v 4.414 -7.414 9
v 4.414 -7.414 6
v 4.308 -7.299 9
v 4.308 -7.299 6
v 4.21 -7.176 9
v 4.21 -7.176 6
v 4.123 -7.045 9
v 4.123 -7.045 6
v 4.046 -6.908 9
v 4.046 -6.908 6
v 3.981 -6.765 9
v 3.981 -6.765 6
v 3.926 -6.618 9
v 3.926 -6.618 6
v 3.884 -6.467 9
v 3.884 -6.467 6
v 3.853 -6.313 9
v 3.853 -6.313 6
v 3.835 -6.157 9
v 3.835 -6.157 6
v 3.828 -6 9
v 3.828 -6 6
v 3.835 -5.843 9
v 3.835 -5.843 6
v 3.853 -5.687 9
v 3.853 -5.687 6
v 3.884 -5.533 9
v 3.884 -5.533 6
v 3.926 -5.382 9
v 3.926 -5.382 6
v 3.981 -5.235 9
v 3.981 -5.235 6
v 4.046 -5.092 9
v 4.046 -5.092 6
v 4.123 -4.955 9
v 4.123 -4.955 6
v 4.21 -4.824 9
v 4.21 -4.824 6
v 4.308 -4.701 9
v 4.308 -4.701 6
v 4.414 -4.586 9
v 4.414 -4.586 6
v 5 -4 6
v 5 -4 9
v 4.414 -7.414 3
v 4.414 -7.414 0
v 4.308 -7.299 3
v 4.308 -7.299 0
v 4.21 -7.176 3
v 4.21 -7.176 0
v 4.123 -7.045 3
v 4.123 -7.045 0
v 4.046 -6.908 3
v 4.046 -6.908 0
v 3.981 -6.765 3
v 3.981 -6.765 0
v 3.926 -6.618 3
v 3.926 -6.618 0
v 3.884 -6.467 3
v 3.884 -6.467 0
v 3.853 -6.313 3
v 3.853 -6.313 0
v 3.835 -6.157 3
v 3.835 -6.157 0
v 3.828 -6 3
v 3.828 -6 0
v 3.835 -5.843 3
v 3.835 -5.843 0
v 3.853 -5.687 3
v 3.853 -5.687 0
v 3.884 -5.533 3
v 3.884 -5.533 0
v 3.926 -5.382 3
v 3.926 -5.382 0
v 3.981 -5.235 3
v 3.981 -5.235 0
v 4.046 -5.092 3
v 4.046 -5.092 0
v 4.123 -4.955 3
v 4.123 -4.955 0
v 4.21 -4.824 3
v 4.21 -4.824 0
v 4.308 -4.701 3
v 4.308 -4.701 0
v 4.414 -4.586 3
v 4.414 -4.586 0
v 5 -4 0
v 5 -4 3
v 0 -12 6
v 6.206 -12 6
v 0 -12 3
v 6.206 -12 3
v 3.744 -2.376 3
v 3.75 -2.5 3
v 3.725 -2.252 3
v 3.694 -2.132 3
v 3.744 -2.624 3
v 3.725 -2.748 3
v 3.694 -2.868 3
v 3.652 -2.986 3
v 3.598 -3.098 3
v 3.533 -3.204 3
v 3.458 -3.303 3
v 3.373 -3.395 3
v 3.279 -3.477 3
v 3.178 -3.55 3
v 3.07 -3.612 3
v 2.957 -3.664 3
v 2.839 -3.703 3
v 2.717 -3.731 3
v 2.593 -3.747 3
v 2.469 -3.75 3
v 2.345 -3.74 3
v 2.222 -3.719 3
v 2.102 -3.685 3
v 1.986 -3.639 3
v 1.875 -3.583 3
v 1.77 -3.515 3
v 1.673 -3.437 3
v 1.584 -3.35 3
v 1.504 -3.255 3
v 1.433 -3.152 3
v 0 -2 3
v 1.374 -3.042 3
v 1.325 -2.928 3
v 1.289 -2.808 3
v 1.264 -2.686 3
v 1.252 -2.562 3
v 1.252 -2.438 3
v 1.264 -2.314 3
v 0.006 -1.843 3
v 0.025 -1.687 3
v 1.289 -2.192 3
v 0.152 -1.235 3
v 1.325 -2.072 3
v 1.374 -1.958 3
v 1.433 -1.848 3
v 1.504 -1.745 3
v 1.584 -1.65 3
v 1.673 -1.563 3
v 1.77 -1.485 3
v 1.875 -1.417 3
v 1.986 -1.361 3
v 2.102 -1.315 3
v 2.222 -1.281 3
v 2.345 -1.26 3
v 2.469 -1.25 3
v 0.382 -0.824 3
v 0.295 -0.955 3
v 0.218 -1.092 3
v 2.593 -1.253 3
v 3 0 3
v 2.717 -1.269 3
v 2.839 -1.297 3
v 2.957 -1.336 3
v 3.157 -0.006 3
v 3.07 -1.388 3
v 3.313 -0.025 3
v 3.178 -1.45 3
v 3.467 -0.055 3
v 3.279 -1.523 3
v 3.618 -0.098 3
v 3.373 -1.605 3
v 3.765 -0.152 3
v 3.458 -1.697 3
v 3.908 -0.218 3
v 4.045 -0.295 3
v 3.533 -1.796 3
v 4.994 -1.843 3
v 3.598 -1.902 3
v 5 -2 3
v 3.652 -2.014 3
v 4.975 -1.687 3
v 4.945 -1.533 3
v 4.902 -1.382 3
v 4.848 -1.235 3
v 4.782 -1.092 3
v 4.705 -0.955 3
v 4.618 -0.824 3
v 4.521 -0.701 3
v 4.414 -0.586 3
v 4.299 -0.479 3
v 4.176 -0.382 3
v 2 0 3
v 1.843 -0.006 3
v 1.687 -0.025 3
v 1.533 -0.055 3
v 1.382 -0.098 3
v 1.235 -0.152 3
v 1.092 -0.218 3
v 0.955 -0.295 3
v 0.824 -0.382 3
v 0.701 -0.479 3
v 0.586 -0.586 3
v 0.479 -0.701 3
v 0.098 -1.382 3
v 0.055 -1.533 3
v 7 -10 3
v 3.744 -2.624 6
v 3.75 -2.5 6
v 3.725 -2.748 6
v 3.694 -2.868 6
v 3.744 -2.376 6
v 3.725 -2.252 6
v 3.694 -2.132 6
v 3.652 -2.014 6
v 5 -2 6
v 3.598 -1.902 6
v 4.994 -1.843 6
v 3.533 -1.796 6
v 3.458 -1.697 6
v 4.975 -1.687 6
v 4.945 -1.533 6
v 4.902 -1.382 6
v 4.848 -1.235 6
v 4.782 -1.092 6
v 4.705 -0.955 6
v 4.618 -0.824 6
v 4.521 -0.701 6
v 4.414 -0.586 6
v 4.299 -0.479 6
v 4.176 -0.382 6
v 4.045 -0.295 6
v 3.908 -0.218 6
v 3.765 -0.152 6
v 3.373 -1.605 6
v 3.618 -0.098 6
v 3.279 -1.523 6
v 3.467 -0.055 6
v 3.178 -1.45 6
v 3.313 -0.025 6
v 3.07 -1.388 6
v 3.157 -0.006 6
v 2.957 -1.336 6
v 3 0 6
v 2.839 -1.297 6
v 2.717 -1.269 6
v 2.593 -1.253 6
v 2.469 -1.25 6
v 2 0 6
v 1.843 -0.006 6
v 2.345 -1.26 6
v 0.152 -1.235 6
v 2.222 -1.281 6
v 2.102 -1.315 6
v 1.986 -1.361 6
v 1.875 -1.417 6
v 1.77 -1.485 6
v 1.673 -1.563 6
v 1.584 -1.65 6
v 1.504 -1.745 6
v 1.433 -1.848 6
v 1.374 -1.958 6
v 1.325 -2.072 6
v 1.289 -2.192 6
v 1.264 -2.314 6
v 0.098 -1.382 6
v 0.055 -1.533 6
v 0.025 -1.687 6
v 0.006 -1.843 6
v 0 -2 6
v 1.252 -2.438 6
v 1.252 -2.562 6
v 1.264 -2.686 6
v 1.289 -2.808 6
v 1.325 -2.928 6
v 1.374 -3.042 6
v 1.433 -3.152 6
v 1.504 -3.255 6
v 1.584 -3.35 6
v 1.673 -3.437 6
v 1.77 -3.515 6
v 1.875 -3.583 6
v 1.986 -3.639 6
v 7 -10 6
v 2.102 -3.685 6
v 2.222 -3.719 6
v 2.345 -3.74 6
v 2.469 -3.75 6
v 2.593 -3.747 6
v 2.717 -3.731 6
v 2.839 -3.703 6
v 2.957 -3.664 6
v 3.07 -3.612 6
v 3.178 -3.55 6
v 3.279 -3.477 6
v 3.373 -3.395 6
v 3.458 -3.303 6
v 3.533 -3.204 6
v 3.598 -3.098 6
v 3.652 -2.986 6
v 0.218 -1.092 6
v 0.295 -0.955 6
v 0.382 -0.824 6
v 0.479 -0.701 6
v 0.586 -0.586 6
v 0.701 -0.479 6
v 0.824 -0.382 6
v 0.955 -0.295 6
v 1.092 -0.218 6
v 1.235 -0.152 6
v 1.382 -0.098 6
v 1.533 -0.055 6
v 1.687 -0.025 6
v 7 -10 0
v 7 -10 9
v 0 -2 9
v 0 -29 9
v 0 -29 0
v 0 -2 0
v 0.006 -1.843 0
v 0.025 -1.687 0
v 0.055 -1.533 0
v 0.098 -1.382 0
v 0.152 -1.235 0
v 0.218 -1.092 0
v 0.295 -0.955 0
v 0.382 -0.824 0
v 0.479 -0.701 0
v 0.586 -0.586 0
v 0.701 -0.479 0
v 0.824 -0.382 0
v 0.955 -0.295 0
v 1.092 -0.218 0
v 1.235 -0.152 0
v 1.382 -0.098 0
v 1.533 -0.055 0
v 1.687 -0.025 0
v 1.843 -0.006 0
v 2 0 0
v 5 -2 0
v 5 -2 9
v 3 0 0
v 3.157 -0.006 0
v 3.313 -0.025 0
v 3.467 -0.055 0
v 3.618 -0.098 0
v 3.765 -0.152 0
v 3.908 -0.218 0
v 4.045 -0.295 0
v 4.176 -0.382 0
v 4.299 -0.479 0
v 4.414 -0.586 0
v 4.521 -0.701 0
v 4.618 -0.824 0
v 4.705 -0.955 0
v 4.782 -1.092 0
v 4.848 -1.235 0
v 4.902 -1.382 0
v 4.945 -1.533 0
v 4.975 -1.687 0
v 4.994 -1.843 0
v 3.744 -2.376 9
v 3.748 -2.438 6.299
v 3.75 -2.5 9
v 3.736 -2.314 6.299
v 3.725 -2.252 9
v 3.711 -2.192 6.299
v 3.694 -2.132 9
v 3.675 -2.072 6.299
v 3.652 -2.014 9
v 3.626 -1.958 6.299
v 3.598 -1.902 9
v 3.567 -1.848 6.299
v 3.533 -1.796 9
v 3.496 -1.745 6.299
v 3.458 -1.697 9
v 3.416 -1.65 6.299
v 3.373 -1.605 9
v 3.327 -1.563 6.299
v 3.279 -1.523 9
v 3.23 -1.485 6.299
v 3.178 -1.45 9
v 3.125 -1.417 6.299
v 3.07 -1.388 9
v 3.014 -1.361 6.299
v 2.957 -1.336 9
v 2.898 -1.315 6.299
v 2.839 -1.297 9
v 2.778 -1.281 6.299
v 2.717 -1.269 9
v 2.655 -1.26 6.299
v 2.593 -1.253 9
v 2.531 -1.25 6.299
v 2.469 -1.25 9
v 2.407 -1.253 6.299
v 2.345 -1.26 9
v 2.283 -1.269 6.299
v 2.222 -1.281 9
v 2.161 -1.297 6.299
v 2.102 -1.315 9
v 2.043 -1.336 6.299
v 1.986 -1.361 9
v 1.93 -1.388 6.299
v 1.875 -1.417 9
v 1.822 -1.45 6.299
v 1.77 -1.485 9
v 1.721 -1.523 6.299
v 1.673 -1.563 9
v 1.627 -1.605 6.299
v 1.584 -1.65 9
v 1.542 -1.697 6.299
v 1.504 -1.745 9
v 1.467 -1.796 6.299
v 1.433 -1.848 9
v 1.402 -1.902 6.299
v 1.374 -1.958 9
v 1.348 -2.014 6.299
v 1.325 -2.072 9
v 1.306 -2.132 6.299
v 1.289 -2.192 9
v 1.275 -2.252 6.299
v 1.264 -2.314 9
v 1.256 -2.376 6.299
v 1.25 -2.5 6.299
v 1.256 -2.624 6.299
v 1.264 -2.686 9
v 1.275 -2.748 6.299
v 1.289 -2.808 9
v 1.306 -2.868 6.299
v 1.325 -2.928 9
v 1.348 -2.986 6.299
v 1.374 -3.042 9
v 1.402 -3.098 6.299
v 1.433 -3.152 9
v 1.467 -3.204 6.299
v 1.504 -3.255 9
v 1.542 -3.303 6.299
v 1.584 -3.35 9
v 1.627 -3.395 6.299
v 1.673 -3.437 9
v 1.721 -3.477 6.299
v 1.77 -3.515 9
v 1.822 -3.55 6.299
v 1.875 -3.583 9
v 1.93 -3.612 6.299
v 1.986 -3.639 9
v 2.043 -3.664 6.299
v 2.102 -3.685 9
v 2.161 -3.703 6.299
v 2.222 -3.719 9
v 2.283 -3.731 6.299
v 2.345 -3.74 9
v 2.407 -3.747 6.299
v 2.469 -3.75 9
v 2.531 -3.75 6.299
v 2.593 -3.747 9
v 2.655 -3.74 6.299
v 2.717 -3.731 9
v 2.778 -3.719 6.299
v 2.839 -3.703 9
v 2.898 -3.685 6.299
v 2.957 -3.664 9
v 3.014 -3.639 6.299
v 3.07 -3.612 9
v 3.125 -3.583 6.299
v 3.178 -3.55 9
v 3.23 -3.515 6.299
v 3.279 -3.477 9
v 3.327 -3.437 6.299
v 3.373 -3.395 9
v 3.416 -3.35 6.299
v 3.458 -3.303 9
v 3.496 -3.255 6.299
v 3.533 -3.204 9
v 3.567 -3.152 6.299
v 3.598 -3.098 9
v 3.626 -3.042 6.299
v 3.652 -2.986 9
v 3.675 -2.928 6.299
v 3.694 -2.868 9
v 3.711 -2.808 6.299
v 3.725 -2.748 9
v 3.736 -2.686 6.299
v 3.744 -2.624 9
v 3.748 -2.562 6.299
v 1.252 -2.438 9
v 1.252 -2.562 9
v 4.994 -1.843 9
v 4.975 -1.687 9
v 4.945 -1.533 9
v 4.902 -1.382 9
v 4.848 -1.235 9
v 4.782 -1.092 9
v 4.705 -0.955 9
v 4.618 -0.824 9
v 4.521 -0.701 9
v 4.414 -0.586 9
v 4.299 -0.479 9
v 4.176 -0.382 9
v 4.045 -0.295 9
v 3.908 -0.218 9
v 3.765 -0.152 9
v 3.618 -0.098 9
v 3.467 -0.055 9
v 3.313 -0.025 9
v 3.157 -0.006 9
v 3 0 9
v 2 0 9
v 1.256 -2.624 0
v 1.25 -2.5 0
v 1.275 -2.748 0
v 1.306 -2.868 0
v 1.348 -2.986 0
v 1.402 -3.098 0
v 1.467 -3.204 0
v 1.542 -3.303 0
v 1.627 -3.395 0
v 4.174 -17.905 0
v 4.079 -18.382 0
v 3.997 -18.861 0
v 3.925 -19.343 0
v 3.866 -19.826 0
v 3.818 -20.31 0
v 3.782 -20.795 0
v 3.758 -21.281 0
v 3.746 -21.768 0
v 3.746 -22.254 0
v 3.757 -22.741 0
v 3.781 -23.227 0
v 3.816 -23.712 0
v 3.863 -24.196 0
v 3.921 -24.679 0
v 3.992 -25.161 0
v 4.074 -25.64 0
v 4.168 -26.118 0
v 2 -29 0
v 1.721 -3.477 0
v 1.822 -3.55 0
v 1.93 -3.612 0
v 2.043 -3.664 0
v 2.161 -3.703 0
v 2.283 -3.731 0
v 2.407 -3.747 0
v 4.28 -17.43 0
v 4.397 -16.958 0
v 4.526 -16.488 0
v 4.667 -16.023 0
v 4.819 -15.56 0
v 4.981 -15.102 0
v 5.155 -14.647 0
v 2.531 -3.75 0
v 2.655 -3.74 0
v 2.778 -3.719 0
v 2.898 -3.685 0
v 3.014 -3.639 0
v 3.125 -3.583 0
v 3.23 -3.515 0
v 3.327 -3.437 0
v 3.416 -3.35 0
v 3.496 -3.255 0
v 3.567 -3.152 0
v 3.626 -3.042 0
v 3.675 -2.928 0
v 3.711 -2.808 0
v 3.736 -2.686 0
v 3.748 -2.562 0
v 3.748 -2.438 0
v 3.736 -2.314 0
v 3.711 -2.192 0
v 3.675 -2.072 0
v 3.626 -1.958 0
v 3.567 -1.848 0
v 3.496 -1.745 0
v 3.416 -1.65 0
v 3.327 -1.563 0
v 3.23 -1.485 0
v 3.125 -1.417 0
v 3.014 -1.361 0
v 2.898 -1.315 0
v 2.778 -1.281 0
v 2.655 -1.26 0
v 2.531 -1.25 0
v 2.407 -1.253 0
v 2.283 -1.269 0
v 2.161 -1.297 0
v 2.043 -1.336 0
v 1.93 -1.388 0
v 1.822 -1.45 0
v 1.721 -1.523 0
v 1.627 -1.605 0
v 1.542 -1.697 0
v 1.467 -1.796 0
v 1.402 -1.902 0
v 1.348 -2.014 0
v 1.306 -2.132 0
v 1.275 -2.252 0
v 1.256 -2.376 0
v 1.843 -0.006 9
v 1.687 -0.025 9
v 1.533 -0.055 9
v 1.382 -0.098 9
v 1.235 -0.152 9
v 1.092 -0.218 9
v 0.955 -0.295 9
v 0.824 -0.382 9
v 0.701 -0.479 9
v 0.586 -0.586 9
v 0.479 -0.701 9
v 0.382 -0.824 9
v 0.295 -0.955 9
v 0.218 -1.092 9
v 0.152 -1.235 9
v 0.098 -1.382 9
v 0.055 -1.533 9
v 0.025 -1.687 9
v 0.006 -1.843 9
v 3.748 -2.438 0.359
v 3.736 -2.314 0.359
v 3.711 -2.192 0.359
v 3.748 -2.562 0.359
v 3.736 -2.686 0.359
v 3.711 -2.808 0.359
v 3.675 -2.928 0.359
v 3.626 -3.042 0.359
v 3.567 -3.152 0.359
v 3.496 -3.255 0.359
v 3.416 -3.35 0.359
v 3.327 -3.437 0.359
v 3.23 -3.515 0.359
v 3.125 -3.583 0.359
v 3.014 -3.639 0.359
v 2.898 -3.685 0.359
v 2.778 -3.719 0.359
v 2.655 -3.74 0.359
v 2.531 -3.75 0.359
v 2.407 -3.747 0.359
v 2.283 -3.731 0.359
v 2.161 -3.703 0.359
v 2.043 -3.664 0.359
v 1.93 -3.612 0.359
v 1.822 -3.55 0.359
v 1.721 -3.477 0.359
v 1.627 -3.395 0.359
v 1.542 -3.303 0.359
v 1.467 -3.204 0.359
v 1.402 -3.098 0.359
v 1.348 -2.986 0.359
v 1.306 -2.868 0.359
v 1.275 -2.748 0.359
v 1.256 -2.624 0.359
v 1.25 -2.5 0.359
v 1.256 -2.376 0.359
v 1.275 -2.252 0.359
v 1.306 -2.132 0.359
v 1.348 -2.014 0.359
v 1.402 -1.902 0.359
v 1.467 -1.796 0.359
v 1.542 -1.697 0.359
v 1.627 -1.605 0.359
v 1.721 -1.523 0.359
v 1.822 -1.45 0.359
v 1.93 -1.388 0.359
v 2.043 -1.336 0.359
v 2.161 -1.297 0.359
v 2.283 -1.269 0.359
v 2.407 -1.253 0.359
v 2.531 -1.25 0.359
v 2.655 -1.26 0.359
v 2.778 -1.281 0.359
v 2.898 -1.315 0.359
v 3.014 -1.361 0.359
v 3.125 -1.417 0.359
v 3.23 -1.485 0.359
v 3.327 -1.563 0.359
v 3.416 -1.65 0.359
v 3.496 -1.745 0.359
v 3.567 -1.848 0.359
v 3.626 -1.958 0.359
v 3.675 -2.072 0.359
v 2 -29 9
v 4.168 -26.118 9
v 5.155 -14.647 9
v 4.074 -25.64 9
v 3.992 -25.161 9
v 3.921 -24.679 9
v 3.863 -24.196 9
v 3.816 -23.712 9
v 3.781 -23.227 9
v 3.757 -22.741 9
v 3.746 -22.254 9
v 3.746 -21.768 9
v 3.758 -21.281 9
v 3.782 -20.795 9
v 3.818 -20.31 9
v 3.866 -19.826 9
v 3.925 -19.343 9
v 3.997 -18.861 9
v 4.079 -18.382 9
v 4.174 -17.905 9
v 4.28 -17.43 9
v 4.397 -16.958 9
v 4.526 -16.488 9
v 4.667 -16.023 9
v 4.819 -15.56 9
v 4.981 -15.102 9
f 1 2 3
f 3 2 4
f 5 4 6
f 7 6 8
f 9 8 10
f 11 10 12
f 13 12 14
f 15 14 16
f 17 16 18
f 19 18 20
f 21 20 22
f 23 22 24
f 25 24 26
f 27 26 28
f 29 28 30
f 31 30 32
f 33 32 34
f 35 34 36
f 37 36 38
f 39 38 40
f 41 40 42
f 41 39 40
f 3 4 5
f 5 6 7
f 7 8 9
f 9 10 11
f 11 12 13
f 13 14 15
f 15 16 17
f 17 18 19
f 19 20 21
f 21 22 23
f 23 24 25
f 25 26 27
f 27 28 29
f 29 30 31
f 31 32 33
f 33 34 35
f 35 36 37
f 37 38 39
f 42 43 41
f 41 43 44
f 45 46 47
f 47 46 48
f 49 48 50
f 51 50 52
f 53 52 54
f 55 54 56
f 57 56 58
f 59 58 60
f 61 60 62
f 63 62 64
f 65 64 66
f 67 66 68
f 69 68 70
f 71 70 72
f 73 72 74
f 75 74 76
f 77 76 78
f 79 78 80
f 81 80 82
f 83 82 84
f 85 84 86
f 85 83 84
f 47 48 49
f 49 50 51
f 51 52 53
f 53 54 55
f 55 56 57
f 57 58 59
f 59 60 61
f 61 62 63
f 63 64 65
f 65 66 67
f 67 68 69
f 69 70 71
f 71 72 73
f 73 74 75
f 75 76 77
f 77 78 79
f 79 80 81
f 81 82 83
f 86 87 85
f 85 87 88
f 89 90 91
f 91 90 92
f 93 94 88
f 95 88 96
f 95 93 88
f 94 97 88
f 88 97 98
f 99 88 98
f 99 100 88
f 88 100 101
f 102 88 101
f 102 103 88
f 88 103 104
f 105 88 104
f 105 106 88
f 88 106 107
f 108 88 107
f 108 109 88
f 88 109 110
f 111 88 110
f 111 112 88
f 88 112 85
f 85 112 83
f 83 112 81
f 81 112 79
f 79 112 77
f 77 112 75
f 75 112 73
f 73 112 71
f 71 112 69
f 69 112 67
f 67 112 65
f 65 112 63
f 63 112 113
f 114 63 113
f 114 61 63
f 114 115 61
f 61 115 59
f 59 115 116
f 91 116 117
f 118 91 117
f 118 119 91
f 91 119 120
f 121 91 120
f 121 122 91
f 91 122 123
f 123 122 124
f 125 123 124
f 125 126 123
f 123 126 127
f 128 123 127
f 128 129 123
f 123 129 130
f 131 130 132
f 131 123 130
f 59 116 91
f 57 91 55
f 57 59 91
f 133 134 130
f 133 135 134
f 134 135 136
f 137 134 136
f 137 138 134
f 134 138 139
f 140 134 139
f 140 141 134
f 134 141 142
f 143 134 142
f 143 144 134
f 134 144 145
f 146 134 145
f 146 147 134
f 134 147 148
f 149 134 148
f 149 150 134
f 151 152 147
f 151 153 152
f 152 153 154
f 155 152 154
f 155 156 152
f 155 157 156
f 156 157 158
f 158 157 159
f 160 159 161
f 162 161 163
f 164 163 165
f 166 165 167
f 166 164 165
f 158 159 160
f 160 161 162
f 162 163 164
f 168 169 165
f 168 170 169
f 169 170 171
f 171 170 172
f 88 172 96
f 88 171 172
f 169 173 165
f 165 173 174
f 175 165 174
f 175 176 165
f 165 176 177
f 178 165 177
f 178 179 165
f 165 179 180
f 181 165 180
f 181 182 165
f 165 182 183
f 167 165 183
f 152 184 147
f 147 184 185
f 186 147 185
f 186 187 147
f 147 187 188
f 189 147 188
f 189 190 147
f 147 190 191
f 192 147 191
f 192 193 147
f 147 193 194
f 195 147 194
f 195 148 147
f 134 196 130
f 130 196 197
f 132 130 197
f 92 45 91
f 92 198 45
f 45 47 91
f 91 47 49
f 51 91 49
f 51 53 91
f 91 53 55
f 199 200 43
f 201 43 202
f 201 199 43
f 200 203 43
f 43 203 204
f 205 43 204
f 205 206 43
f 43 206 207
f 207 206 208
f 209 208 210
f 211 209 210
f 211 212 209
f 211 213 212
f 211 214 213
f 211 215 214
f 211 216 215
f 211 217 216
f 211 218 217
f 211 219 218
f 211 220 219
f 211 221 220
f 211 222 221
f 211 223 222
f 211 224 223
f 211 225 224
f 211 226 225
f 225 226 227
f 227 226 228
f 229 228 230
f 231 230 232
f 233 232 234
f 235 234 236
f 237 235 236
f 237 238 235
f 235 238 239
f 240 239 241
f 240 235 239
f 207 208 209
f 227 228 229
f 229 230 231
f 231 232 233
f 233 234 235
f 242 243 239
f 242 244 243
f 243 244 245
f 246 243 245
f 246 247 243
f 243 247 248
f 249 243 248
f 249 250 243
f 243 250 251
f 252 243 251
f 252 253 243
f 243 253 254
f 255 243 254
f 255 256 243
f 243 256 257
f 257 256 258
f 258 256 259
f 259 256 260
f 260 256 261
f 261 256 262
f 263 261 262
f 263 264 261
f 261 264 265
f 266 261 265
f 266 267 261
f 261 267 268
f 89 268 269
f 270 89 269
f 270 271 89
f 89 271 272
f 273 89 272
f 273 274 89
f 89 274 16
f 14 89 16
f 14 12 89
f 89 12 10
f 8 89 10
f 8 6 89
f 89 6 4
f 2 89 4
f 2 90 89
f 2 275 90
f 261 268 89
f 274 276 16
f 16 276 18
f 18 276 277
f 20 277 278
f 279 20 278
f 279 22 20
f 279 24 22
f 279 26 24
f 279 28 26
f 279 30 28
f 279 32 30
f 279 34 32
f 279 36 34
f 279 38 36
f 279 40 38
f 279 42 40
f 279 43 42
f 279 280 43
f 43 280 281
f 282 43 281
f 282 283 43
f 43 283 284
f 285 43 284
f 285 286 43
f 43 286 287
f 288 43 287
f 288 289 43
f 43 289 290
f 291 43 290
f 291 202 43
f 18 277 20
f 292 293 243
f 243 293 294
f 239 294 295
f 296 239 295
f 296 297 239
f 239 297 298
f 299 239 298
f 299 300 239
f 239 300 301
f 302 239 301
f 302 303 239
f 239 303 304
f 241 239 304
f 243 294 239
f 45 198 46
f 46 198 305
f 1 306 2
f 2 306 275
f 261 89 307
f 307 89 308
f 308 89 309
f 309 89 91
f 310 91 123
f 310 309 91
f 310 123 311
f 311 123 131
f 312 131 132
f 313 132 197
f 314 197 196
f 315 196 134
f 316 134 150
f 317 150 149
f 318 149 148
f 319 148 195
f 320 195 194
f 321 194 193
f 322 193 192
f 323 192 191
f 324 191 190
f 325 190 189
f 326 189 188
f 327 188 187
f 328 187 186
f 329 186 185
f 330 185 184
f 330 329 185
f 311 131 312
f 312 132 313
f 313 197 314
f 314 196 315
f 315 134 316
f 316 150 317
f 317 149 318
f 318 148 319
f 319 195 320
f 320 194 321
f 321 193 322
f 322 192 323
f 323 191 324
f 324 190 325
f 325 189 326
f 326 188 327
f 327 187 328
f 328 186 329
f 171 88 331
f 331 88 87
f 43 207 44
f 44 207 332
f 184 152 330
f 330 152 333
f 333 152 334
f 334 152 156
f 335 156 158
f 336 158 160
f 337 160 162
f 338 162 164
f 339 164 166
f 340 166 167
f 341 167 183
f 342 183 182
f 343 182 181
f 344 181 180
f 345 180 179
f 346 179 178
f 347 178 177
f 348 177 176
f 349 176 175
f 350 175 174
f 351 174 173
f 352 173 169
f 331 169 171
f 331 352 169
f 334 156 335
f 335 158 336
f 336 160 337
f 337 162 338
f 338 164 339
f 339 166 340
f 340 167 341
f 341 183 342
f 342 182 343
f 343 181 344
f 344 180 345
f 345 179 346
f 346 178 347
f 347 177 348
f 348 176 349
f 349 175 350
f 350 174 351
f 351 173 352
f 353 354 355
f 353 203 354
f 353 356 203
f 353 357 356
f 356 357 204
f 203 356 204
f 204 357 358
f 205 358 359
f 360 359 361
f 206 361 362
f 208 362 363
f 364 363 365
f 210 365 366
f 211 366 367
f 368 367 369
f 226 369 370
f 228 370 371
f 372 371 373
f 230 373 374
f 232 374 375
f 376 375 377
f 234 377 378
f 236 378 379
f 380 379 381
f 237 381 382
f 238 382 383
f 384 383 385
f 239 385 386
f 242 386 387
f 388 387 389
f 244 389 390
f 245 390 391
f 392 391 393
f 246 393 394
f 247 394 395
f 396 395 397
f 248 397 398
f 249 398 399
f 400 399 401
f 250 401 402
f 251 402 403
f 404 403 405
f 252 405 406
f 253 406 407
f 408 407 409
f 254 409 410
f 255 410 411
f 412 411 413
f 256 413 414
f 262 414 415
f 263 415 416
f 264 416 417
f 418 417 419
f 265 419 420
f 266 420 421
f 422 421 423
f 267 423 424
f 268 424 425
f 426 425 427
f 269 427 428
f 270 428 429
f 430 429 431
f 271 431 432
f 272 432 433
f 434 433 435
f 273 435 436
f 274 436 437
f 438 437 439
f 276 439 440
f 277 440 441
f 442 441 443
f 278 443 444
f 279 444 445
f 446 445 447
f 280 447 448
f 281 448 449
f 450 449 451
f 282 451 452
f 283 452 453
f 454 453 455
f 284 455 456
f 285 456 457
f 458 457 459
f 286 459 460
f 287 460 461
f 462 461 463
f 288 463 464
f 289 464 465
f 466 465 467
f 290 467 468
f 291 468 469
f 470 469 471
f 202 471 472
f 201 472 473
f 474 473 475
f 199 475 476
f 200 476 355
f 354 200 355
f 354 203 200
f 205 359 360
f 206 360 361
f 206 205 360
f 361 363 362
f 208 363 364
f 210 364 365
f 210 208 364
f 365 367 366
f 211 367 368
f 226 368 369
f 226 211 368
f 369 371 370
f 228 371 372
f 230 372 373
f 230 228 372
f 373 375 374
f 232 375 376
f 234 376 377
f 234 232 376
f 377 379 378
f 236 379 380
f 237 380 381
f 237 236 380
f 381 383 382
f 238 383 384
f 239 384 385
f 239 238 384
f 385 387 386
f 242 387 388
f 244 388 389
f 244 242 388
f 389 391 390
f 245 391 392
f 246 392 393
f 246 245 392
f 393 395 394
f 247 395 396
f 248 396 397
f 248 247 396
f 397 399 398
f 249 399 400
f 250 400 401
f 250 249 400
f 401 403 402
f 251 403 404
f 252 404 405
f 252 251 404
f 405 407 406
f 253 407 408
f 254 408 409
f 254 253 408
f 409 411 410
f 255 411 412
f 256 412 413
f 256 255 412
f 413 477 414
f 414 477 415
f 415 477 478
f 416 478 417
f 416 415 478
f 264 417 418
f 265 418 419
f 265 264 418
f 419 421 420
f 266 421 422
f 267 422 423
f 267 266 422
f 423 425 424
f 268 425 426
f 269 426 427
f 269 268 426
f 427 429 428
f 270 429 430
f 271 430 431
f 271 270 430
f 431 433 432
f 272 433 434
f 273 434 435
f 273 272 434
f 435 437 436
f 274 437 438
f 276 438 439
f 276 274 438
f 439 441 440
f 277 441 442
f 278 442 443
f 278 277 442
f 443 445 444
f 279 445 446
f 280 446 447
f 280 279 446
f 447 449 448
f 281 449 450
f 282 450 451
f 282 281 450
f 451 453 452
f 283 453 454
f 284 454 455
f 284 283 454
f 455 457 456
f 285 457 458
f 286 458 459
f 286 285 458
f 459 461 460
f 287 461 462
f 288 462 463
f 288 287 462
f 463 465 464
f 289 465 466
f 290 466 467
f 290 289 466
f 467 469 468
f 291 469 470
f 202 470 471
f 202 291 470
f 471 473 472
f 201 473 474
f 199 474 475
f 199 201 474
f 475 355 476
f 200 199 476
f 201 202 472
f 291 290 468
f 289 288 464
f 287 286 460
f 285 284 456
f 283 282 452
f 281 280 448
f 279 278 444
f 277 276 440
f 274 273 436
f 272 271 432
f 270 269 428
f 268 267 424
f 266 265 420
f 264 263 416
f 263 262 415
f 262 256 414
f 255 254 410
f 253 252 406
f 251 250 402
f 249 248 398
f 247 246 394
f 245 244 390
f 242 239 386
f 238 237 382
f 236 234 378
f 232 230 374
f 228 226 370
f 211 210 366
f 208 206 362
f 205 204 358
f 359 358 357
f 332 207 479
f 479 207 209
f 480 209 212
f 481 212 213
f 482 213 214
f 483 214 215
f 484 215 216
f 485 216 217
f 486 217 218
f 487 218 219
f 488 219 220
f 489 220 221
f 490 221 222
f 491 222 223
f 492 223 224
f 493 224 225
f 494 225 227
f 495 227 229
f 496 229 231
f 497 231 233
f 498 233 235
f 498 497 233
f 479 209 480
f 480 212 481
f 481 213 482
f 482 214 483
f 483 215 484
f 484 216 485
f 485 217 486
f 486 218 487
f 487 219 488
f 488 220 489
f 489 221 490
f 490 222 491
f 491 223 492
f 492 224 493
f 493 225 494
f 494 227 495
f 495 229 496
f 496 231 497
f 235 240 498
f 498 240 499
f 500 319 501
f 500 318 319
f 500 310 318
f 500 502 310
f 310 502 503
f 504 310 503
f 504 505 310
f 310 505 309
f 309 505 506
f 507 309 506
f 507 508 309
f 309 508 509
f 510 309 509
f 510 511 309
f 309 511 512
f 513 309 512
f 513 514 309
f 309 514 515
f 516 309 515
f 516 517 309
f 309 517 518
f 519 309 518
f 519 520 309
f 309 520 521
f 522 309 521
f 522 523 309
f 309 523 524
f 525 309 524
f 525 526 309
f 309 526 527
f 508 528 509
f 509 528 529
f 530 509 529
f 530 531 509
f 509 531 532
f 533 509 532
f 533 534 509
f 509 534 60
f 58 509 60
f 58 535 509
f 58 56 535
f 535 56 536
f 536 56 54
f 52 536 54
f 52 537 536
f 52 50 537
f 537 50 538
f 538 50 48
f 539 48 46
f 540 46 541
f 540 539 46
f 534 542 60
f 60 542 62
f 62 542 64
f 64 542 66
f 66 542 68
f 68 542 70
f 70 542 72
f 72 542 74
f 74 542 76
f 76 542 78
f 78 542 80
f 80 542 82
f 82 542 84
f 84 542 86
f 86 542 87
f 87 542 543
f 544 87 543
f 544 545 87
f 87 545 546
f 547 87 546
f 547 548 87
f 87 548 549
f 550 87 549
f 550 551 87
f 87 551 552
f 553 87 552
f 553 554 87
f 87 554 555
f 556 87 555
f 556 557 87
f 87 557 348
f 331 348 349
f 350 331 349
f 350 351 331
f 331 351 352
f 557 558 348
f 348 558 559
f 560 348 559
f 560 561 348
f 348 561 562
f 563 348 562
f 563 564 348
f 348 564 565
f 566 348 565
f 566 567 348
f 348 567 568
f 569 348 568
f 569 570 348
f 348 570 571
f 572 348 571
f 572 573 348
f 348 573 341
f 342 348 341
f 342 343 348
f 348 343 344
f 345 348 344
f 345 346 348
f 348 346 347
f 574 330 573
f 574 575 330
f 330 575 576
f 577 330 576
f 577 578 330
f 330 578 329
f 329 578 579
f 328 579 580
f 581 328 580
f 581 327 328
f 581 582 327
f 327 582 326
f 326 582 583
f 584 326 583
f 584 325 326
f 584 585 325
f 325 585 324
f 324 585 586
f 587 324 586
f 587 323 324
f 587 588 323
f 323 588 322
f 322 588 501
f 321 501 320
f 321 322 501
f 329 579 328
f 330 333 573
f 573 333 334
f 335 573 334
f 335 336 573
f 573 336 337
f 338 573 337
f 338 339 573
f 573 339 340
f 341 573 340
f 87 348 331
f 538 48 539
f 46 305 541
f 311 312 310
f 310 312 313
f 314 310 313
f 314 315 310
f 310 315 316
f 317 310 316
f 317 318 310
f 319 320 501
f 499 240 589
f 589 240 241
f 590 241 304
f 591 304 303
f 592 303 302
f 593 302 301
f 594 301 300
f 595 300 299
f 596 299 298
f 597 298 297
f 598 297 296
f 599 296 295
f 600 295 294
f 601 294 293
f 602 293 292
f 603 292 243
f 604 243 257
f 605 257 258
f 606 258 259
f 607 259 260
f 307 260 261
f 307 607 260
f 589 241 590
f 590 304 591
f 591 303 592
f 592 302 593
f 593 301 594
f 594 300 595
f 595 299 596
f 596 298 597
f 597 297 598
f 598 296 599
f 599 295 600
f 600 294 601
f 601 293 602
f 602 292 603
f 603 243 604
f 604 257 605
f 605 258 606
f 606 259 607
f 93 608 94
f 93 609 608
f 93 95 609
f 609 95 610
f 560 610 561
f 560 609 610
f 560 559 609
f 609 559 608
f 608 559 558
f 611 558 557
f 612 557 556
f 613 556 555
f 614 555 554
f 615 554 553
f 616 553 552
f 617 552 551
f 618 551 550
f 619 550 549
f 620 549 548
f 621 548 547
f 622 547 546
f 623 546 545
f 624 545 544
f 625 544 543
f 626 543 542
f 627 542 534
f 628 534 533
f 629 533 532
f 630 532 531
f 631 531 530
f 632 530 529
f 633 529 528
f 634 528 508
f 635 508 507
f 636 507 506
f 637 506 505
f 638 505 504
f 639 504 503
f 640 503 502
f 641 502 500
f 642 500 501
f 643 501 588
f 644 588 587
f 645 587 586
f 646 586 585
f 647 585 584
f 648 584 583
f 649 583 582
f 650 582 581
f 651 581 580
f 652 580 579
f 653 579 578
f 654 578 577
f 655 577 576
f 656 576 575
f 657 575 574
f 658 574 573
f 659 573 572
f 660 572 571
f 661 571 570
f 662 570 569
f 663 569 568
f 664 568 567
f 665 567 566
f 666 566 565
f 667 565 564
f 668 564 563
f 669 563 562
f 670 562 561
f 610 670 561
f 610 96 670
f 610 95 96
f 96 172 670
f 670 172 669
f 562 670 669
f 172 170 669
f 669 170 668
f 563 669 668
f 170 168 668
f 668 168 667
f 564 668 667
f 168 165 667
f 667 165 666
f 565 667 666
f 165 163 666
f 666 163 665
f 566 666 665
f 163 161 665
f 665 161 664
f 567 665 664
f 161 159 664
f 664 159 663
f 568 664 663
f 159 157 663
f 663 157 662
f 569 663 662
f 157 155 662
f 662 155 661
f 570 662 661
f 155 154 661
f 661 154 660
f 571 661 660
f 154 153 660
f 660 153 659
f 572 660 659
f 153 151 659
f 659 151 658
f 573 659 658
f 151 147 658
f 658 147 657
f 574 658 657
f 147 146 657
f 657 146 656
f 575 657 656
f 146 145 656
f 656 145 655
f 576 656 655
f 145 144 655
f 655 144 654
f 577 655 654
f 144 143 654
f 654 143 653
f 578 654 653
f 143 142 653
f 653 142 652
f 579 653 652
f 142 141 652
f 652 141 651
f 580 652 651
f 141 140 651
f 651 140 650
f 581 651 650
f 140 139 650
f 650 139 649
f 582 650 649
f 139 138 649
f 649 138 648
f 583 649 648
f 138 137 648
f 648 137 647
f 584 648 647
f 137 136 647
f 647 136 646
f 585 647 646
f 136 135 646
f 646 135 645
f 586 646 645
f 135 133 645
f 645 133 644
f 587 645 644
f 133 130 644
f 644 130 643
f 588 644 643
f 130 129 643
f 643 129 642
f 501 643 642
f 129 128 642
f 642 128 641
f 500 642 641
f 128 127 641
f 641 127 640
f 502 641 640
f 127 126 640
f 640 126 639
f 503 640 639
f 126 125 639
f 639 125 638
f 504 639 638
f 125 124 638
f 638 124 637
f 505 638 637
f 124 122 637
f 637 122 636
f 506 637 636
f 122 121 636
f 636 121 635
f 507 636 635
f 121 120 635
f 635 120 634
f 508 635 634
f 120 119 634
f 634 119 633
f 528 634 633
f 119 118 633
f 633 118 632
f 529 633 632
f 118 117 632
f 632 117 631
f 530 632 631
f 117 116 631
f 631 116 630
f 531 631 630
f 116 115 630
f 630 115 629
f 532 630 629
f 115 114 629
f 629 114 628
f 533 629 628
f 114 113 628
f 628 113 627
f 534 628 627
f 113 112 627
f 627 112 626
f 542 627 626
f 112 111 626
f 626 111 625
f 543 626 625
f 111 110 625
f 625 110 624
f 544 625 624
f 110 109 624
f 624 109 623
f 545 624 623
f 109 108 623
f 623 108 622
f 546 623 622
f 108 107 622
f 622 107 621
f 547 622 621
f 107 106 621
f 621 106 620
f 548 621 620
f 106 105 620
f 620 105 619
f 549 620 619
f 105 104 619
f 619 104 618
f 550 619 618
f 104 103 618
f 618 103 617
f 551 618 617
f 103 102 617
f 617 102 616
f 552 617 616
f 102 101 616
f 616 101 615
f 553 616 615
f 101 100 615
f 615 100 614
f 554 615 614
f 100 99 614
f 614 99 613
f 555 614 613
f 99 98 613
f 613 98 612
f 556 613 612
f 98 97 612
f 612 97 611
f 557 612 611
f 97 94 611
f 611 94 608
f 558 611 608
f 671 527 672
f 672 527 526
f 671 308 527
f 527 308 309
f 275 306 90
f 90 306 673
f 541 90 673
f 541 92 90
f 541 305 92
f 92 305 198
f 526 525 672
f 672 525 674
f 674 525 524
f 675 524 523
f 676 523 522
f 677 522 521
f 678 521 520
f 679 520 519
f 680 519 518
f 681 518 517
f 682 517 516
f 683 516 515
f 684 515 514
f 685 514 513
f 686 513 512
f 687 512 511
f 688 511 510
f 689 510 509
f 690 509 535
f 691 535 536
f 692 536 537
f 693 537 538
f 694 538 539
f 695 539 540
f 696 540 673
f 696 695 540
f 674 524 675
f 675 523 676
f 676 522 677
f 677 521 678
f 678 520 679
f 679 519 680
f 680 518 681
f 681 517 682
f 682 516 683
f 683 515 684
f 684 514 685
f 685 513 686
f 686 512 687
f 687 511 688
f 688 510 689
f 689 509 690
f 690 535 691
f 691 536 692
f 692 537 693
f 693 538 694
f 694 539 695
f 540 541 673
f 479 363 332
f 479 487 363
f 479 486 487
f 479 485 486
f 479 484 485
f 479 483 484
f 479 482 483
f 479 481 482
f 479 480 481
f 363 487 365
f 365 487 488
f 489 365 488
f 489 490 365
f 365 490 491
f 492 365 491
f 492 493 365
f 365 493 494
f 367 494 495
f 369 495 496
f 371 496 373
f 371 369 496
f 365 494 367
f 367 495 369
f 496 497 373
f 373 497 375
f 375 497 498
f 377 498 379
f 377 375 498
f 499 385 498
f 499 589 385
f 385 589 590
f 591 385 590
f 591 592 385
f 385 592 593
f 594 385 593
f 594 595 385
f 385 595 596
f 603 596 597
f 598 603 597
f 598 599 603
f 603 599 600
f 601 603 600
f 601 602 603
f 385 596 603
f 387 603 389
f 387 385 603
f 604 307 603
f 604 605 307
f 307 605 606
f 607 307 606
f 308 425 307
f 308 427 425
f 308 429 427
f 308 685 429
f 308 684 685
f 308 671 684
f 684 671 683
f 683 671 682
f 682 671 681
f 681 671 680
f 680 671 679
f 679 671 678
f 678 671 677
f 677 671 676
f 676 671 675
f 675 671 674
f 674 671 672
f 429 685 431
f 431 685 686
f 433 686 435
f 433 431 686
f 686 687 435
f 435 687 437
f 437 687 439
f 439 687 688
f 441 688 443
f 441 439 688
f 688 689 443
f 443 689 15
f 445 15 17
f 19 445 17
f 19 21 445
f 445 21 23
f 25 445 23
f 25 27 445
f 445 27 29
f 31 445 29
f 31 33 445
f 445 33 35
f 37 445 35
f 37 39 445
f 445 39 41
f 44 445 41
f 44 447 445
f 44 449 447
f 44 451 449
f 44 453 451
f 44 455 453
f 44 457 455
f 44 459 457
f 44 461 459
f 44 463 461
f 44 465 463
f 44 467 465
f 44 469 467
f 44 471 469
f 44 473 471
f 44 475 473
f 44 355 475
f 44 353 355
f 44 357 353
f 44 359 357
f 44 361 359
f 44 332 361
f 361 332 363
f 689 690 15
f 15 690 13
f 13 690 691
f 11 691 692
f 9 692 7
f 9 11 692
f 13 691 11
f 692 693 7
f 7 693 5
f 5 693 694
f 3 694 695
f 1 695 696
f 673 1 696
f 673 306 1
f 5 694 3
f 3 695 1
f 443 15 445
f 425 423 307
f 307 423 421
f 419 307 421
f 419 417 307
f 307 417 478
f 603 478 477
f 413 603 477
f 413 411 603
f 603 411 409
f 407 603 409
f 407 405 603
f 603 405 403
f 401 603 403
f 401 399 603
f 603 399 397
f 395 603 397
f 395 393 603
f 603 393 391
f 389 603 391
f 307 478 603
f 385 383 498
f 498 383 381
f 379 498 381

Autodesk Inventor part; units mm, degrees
ref_plane "YZ Plane" through (0, 0, 0) normal (1, 0, 0) x (0, 1, 0)
ref_plane "XZ Plane" through (0, 0, 0) normal (0, 1, 0) x (-1, 0, 0)
sketch "Base" plane through (0, 0, 0) normal (0, 0, 1) x (1, 0, 0)
  line L0 (0, 0) -> (0, -29)
  line L1 (0, 0) -> (5, 0)
  line L2 (5, 0) -> (5, -4)
  line L3 (3, -6) -> (7, -10)
  line L4 (7, -10) -> (5.1554, -14.6473)
  line L5 (0, -29) -> (5, -29)
  line L6 (5, -4) -> (3, -6)
  arc A0 (5.1554, -14.6473) -> (5, -29) centre (23.7446, -22.0257) ccw
  dimension "d0" = 29
  dimension "d1" = 5
  dimension "d54" = 4
  dimension "d112" = 5
  dimension "d116" = 20
  dimension "d117" = 45
  dimension "d118" = 7
  dimension "d119" = 5
  dimension "d123" = 4
extrude "BaseFeature" add sketch "Base" along normal blind 9
chamfer "EndChamferFeature" distance 3 angle 45 1 edges at (5, -29, 4.5)
sketch "MountHole" plane through (0, 0, 9) normal (0, 0, 1) x (1, 0, 0)
  circle A0 centre (2.5, -2.5) radius 1.25
  line L0 (5, 0) -> (0, 0) construction
  line L1 (0, 0) -> (0, -29) construction
  dimension "d40" = 2.5
  dimension "d41" = 2.5
  dimension "d42" = 2.5
hole "MountHoleFeature" at (2.5, -2.5, 9) direction (0, 0, -1) diameter 2.5 end through all
fillet "EndFilletsFeature" radius 2 2 edges at (0, 0, 4.5) (5, 0, 4.5)
ref_plane "MidPlane" through (0, 0, 4.5) normal (0, 0, 1) x (1, 0, 0)
sketch "MountCut" plane through (0, 0, 4.5) normal (0, 0, 1) x (1, 0, 0)
  line L0 (5.1554, -14.6473) -> (7, -10) projected
  line L1 (7, -10) -> (3, -6) projected
  line L2 (3, -6) -> (5, -4) projected
  arc A0 (5, -2) -> (3, 0) centre (3, -2) ccw projected
  line L3 (3, 0) -> (2, 0) projected
  arc A1 (2, 0) -> (0, -2) centre (2, -2) ccw projected
  line L4 (0, -2) -> (0, -29) projected
  circle A2 centre (2.5, -2.5) radius 1.25 projected
  line L5 (4.1677, -26.1178) -> (2, -29) projected
  arc A3 (5.1554, -14.6473) -> (4.1677, -26.1178) centre (23.7446, -22.0257) ccw projected
  line L6 (3, -6) -> (0, -6)
  line L7 (0, -12) -> (6.2062, -12)
  line L8 (5.1554, -14.6473) -> (7, -10) projected
  line L9 (0, -2) -> (0, -29) projected
  line L10 (0, -29) -> (2, -29) projected
  line L11 (5, -4) -> (5, -2) projected
  dimension "d120" = 6
extrude "MountCutFeature" cut sketch "MountCut" along normal mid plane 3 contours L7 L4 L6 L1 L0 | L6 L4 A1 L3 A0 L11 L2
fillet "LastFilletFeature" radius 2 2 edges at (3, -6, 1.5) (3, -6, 7.5)
properties part number "ProximalPhalangeIndex2"
